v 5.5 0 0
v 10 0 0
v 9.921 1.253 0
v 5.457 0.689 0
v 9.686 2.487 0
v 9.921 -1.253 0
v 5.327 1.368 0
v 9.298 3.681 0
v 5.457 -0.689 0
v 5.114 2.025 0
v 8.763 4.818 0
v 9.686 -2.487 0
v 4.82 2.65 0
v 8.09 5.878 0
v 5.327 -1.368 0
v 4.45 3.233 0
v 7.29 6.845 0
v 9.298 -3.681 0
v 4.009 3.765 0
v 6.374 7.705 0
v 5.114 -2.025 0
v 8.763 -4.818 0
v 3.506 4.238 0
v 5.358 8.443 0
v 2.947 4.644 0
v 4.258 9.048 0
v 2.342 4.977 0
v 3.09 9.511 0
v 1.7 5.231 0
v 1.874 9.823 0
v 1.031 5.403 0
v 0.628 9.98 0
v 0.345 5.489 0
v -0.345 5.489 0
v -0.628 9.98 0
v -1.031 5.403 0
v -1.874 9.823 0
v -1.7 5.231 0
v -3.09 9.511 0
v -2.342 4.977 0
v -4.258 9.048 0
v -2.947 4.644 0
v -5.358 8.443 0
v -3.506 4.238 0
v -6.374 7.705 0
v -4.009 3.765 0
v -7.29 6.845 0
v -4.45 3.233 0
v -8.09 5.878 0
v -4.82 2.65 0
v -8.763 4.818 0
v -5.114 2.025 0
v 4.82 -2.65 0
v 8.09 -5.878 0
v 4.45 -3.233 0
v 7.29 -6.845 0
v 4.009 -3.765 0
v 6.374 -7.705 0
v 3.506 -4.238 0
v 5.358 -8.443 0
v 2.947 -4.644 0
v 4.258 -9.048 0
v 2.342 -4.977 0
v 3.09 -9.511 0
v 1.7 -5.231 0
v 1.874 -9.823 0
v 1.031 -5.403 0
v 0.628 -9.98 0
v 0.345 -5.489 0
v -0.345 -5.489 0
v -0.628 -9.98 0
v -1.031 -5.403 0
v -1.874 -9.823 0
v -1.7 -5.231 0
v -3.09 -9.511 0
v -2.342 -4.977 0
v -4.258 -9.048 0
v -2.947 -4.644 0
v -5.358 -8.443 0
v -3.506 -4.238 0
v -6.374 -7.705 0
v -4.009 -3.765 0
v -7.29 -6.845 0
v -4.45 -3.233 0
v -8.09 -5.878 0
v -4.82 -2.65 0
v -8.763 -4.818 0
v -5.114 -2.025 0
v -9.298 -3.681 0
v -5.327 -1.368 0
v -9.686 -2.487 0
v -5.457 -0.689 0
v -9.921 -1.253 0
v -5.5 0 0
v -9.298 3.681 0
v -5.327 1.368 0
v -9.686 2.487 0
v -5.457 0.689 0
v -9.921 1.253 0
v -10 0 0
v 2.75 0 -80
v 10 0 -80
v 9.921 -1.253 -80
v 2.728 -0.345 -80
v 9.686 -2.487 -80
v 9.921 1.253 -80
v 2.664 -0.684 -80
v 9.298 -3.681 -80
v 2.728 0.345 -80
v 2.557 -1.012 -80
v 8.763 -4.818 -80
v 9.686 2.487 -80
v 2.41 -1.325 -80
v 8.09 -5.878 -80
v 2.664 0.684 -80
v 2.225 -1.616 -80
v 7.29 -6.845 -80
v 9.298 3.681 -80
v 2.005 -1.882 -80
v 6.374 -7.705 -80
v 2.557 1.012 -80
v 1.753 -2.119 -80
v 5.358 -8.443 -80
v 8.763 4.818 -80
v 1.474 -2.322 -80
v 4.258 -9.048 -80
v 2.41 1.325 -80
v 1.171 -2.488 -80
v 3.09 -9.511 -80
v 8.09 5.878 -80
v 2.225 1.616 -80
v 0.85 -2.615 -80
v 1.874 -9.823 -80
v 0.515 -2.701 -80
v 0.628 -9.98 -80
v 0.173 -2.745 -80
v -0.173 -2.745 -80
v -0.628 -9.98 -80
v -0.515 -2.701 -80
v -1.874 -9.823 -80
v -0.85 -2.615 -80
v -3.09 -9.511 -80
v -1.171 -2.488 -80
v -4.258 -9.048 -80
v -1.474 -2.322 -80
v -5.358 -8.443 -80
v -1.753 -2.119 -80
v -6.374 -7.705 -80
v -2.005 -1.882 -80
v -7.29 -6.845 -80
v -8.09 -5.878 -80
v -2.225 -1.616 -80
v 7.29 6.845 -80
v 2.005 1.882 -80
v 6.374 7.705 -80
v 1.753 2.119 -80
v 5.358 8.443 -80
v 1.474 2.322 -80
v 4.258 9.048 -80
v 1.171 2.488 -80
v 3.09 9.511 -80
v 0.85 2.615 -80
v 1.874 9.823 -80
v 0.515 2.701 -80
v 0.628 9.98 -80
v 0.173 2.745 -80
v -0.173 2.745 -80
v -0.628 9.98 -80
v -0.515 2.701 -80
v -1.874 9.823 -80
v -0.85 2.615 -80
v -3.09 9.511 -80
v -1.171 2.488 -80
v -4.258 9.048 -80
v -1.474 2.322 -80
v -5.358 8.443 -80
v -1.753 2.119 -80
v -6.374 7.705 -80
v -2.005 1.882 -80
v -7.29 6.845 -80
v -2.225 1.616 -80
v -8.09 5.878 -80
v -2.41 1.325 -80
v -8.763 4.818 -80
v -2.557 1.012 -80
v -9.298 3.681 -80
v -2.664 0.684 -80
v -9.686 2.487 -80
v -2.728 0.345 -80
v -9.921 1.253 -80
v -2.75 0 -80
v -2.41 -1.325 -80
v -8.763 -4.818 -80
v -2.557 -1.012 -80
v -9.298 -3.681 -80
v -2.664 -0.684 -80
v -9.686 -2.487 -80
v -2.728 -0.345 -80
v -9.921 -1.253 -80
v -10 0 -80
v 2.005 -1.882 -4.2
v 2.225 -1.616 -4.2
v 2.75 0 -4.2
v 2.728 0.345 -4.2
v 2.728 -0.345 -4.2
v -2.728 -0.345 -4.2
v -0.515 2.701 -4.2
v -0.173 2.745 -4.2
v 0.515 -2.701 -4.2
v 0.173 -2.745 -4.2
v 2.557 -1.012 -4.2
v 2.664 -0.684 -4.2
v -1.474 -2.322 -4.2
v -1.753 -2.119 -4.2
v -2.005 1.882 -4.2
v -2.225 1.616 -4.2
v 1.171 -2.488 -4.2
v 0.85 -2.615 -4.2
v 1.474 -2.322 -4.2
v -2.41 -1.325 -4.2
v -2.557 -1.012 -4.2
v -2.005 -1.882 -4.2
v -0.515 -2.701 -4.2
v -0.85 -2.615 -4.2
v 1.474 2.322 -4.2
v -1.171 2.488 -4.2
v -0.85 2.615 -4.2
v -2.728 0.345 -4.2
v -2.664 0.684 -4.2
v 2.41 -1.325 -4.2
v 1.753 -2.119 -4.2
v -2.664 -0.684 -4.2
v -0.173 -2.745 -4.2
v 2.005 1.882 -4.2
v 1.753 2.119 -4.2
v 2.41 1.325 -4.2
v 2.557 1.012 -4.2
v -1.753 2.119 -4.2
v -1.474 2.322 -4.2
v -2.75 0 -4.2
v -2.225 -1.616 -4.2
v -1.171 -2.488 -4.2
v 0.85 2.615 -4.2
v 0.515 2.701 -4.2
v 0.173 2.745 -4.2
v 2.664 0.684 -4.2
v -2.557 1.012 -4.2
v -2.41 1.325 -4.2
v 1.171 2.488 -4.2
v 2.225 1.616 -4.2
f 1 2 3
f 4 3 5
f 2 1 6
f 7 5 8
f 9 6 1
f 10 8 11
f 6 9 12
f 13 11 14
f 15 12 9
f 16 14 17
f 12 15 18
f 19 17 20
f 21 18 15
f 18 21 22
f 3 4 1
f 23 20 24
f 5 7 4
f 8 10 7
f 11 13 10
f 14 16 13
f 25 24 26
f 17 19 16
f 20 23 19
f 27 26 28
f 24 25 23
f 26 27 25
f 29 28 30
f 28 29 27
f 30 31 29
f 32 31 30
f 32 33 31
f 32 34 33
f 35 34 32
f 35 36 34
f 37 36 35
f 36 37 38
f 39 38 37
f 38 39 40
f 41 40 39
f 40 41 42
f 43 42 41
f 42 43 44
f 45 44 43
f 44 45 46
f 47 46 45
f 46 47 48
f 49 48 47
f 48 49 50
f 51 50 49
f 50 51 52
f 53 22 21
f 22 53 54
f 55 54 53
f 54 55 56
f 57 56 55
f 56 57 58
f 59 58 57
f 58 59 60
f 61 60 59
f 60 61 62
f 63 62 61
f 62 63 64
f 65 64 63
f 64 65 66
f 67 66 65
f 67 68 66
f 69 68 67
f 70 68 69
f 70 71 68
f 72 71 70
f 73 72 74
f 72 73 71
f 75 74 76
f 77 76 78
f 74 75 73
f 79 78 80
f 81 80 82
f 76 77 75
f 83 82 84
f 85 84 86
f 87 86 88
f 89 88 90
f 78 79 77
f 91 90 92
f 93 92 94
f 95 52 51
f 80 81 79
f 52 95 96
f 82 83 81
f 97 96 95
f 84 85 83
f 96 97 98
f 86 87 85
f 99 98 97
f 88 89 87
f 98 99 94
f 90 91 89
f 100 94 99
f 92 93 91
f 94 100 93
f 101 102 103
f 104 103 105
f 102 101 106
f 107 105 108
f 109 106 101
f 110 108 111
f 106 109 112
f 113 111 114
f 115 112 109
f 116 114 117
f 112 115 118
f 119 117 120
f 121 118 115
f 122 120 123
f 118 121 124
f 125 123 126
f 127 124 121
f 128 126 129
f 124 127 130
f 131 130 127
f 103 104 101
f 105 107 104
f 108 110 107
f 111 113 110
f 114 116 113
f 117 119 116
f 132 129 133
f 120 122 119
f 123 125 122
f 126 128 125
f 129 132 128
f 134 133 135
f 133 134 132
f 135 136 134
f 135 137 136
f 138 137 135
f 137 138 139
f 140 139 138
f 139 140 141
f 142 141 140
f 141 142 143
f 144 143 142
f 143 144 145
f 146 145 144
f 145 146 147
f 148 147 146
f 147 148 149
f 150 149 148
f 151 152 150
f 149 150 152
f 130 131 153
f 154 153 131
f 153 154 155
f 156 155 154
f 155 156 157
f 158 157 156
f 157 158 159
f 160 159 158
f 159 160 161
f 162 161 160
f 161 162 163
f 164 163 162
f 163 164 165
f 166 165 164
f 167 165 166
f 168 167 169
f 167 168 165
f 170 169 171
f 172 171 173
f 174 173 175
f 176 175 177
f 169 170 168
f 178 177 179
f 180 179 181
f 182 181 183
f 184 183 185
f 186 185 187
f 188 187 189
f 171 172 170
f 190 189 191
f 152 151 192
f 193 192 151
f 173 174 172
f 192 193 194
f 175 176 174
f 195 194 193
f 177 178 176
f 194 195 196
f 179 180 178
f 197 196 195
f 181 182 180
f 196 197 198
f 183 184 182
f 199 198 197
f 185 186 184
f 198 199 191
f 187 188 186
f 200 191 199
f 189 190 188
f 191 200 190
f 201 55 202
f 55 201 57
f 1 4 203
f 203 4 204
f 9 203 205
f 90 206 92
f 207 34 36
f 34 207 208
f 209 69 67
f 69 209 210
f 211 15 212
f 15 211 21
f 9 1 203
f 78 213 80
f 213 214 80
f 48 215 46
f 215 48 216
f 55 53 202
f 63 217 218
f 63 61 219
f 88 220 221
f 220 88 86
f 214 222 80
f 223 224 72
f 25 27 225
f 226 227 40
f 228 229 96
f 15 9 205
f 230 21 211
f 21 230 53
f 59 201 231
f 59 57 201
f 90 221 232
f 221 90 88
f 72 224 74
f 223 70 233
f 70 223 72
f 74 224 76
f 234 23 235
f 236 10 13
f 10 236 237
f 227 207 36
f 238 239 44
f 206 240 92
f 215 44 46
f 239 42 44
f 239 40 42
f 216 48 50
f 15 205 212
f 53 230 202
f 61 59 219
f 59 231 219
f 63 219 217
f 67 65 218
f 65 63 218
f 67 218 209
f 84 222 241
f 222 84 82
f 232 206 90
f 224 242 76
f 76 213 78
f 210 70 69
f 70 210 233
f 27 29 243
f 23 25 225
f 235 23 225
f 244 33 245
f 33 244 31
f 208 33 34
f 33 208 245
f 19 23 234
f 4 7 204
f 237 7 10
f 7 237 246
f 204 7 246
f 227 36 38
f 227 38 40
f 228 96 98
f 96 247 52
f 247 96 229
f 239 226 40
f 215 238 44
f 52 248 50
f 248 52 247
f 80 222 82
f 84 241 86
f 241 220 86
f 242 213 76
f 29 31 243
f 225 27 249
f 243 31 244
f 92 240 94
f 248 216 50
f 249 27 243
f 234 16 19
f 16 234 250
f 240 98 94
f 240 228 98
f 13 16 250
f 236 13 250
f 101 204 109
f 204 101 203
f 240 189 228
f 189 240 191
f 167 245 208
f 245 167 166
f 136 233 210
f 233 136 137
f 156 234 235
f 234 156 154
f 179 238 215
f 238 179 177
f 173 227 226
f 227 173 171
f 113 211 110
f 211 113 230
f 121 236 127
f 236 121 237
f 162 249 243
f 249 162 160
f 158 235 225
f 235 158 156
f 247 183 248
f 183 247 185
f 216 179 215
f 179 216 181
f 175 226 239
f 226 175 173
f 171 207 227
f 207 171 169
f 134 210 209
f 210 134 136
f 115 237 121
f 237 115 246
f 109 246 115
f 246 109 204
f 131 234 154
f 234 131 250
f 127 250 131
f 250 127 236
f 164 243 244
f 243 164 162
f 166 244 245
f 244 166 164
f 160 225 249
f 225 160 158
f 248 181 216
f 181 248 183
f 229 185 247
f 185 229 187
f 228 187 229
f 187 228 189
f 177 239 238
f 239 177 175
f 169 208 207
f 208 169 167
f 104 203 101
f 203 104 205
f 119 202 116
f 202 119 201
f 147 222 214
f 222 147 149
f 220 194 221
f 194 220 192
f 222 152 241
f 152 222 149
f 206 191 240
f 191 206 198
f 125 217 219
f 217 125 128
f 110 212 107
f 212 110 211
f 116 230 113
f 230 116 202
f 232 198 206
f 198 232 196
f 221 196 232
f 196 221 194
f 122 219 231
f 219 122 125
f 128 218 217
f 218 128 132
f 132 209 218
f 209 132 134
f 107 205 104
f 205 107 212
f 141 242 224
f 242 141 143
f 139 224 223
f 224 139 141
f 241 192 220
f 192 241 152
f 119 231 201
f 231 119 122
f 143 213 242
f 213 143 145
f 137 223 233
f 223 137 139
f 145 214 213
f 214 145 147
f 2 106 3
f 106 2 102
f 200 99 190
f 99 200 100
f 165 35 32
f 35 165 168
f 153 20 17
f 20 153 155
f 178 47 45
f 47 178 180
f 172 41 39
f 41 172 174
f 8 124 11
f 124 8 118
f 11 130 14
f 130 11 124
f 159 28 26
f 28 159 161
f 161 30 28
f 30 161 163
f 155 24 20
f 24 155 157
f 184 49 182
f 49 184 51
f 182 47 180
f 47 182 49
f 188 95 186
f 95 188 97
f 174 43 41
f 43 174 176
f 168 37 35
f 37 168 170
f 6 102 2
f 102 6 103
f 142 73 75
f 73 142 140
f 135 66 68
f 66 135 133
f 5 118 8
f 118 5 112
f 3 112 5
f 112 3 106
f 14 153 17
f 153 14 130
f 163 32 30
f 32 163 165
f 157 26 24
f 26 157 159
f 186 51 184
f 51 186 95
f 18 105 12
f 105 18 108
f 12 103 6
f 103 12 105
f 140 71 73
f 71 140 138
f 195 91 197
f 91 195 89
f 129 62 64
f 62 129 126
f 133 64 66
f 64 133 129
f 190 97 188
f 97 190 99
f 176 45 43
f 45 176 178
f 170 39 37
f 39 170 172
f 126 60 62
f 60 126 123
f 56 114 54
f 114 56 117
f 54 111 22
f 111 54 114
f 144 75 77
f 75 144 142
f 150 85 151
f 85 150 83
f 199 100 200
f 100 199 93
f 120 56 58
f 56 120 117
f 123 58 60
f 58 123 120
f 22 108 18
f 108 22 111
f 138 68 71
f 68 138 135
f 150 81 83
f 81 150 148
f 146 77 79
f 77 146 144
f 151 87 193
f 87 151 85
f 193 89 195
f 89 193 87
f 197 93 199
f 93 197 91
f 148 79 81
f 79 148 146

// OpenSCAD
$fn = 50;


difference() {
	union() {
		translate(v = [0, 0, -80.0000000000]) {
			cylinder(h = 80, r = 10.0000000000);
		}
		cylinder(h = 0, r = 19.0000000000);
	}
	union() {
		translate(v = [0, 0, 0]) {
			rotate(a = [0, 0, 0]) {
				difference() {
					union() {
						#translate(v = [0, 0, -80.0000000000]) {
							cylinder(h = 80, r = 2.2500000000);
						}
						#translate(v = [0, 0, -4.2000000000]) {
							cylinder(h = 4.2000000000, r1 = 2.7500000000, r2 = 5.5000000000);
						}
						#translate(v = [0, 0, -80.0000000000]) {
							cylinder(h = 80, r = 2.7500000000);
						}
						#translate(v = [0, 0, -80.0000000000]) {
							cylinder(h = 80, r = 2.2500000000);
						}
					}
					union();
				}
			}
		}
	}
}
